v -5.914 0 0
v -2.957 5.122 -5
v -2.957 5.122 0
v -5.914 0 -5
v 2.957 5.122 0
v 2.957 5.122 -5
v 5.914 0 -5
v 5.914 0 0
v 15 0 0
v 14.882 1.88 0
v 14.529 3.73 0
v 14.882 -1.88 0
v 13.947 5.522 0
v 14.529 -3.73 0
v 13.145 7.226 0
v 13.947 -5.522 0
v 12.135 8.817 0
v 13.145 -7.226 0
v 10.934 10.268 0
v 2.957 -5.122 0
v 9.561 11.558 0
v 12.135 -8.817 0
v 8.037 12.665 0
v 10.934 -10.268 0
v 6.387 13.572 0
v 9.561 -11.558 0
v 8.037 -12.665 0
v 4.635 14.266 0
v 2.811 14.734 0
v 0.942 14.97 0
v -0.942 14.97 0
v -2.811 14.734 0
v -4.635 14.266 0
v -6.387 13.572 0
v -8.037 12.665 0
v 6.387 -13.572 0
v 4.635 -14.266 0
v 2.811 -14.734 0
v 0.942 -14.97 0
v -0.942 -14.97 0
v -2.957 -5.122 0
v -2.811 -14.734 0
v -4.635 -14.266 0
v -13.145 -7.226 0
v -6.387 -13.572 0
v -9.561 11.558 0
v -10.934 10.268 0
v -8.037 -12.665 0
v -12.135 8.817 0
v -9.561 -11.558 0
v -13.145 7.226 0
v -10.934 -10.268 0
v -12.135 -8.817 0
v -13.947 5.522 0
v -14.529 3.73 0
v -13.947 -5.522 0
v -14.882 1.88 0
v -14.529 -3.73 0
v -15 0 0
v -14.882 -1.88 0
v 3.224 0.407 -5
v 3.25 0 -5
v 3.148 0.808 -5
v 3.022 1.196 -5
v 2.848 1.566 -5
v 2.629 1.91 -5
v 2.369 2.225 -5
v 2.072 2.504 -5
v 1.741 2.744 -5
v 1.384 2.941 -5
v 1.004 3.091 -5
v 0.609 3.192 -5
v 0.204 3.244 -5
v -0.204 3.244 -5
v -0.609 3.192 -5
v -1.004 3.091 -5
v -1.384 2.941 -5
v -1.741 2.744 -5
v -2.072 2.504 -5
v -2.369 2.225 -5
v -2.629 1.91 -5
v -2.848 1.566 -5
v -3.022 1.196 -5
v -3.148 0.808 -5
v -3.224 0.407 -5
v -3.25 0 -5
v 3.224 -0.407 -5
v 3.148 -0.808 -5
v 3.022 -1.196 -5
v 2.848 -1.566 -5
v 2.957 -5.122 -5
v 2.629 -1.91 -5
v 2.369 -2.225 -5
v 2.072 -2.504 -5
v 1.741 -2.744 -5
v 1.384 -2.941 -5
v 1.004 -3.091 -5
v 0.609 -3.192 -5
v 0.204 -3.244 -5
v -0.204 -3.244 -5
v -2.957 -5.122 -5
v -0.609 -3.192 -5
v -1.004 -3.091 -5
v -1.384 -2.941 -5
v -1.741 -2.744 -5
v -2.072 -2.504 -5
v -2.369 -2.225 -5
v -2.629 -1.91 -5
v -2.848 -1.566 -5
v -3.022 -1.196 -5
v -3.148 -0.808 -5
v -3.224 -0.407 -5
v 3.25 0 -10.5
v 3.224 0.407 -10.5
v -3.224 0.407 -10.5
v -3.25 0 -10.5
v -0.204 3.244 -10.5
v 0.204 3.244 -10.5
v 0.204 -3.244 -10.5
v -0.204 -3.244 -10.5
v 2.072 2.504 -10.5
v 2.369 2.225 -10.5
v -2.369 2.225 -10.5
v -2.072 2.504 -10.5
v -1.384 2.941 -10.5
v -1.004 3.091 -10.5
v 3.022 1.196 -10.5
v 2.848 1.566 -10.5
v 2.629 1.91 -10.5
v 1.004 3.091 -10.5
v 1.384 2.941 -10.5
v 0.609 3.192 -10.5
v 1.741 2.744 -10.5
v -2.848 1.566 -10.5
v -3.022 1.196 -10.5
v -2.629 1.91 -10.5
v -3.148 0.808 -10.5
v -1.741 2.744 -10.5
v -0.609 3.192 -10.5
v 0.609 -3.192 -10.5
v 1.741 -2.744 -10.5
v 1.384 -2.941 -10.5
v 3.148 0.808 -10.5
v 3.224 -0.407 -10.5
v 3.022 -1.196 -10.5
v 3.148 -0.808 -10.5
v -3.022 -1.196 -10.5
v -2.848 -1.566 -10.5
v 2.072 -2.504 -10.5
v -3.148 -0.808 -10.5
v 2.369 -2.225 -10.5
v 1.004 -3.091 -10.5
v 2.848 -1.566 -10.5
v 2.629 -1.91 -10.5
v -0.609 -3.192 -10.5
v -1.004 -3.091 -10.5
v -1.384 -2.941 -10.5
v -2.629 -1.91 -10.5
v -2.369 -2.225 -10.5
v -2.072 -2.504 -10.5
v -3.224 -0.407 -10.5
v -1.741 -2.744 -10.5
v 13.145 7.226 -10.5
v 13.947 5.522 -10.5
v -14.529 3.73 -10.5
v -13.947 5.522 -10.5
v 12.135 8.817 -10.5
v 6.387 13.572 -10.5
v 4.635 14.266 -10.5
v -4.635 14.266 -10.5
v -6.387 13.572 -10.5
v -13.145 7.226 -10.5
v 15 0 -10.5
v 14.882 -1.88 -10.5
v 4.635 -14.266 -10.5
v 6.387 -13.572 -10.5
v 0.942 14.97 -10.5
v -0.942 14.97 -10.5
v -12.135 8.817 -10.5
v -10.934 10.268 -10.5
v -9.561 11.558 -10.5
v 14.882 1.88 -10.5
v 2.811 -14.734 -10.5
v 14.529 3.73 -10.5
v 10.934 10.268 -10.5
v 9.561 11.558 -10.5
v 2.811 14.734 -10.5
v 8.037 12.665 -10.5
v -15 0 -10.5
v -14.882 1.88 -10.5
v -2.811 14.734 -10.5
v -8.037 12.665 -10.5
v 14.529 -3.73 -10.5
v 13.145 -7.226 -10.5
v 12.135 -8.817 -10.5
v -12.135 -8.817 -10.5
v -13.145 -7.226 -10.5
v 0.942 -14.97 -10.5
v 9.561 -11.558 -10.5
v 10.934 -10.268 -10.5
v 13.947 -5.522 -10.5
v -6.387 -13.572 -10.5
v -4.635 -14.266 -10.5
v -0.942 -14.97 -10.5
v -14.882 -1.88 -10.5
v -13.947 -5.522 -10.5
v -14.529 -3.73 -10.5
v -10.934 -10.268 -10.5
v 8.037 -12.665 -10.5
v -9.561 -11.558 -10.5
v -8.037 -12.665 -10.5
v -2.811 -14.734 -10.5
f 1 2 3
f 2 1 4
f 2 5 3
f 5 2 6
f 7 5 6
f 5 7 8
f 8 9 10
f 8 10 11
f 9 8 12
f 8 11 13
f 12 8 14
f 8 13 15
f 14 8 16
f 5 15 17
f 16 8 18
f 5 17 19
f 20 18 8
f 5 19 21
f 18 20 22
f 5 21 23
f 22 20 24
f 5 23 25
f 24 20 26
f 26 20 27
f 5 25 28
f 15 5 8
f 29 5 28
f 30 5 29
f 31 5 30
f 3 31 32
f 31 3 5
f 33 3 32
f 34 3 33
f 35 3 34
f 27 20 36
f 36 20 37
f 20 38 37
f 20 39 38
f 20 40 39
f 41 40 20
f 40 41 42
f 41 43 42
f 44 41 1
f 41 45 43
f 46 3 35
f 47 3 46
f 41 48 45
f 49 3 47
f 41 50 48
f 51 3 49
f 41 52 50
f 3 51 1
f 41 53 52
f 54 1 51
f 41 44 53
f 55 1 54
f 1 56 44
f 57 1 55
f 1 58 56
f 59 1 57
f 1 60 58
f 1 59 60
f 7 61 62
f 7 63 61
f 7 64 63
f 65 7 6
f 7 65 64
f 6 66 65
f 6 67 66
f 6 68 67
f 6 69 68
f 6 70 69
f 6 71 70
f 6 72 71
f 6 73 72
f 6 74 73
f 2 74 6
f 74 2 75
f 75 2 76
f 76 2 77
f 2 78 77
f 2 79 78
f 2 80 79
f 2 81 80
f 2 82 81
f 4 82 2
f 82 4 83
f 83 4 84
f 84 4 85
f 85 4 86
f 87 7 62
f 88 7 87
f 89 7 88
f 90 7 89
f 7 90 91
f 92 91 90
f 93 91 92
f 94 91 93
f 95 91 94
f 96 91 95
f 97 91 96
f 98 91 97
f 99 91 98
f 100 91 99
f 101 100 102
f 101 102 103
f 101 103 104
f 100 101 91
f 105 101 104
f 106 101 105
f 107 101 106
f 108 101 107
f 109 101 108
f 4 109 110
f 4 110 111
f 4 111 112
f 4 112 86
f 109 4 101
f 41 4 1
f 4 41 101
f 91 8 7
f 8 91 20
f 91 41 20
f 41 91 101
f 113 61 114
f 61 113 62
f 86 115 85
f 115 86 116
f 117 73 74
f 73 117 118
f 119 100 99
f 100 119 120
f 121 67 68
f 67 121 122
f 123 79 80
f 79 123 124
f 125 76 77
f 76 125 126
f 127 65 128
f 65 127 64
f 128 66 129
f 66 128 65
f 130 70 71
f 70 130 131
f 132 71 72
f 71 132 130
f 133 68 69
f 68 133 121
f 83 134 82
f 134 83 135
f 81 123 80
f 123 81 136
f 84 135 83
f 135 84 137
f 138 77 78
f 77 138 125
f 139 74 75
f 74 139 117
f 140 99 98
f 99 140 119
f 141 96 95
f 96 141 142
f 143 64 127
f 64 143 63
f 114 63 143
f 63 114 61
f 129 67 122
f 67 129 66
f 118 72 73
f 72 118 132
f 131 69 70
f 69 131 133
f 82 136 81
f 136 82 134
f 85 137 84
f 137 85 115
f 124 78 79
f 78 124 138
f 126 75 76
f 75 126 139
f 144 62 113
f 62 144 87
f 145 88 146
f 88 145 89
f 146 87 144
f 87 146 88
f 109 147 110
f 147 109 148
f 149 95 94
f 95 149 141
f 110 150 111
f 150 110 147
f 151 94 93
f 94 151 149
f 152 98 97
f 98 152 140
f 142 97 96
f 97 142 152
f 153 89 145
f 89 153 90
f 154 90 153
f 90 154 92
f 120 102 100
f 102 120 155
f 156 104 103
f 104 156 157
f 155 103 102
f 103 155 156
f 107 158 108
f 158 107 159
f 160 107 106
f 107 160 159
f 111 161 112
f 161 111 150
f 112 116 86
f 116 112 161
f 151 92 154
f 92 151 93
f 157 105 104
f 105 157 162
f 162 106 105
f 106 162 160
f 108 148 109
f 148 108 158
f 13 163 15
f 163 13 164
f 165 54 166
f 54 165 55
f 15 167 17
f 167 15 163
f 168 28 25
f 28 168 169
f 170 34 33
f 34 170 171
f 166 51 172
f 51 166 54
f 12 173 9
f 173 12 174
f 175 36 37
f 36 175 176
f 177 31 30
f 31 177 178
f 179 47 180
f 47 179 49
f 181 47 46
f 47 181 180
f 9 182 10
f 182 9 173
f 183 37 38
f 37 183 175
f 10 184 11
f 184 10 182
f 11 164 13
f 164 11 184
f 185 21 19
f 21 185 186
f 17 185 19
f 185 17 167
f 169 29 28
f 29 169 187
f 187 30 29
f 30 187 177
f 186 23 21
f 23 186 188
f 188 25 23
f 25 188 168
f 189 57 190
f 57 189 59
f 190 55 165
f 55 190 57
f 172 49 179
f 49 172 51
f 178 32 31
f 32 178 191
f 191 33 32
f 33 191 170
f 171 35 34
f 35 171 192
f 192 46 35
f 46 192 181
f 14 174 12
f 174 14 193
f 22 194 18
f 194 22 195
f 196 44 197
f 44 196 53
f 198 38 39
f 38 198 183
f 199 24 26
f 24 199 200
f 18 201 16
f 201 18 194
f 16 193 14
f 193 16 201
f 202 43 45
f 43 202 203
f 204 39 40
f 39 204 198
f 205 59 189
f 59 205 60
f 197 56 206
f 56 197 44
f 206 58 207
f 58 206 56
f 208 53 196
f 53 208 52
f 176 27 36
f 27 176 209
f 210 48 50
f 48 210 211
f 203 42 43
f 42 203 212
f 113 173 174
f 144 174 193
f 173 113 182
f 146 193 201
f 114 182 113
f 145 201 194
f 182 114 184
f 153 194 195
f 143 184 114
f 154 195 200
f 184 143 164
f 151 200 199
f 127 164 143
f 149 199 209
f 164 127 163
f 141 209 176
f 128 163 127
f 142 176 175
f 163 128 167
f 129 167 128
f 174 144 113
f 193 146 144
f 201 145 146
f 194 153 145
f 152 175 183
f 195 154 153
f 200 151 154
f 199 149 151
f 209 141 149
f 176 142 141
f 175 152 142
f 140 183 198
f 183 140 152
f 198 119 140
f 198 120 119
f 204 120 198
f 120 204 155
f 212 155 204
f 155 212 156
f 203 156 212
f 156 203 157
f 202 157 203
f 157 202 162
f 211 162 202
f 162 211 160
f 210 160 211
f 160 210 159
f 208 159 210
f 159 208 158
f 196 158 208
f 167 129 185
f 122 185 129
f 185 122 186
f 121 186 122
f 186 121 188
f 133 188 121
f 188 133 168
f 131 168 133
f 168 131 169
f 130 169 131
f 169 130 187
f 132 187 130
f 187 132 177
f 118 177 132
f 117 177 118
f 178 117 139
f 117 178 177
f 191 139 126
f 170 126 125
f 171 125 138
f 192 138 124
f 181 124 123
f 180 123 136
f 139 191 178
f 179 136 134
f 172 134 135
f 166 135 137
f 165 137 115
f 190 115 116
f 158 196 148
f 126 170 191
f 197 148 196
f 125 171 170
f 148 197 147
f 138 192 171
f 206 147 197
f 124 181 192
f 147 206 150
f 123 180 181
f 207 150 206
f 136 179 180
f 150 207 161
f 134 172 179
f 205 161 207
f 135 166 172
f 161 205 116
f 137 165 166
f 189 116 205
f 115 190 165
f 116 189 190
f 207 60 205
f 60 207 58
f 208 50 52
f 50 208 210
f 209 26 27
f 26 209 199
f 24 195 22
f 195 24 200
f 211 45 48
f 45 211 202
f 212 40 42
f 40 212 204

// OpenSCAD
$fn = 50;

difference() {
	union() {
		translate(v = [0, 0, -10.5]) {
			cylinder(h = 10.5, r = 15.0);
		}
	}
	union() {
		translate(v = [0, 0, 0]) {
			rotate(a = [0, 0, 0]) {
				difference() {
					union() {
						translate(v = [0, 0, -5]) {
							linear_extrude(height = 5) {
								polygon(points = [[5.914249999999999, 0.0], [2.957125, 5.1218907443321156], [-2.9571249999999982, 5.1218907443321156], [-5.914249999999999, 7.242867331857232e-16], [-2.9571250000000022, -5.121890744332115], [2.9571249999999956, -5.121890744332118]]);
							}
						}
					}
					union();
				}
			}
		}
		#translate(v = [0, 0, -100.0]) {
			cylinder(h = 200, r = 3.25);
		}
	}
}
